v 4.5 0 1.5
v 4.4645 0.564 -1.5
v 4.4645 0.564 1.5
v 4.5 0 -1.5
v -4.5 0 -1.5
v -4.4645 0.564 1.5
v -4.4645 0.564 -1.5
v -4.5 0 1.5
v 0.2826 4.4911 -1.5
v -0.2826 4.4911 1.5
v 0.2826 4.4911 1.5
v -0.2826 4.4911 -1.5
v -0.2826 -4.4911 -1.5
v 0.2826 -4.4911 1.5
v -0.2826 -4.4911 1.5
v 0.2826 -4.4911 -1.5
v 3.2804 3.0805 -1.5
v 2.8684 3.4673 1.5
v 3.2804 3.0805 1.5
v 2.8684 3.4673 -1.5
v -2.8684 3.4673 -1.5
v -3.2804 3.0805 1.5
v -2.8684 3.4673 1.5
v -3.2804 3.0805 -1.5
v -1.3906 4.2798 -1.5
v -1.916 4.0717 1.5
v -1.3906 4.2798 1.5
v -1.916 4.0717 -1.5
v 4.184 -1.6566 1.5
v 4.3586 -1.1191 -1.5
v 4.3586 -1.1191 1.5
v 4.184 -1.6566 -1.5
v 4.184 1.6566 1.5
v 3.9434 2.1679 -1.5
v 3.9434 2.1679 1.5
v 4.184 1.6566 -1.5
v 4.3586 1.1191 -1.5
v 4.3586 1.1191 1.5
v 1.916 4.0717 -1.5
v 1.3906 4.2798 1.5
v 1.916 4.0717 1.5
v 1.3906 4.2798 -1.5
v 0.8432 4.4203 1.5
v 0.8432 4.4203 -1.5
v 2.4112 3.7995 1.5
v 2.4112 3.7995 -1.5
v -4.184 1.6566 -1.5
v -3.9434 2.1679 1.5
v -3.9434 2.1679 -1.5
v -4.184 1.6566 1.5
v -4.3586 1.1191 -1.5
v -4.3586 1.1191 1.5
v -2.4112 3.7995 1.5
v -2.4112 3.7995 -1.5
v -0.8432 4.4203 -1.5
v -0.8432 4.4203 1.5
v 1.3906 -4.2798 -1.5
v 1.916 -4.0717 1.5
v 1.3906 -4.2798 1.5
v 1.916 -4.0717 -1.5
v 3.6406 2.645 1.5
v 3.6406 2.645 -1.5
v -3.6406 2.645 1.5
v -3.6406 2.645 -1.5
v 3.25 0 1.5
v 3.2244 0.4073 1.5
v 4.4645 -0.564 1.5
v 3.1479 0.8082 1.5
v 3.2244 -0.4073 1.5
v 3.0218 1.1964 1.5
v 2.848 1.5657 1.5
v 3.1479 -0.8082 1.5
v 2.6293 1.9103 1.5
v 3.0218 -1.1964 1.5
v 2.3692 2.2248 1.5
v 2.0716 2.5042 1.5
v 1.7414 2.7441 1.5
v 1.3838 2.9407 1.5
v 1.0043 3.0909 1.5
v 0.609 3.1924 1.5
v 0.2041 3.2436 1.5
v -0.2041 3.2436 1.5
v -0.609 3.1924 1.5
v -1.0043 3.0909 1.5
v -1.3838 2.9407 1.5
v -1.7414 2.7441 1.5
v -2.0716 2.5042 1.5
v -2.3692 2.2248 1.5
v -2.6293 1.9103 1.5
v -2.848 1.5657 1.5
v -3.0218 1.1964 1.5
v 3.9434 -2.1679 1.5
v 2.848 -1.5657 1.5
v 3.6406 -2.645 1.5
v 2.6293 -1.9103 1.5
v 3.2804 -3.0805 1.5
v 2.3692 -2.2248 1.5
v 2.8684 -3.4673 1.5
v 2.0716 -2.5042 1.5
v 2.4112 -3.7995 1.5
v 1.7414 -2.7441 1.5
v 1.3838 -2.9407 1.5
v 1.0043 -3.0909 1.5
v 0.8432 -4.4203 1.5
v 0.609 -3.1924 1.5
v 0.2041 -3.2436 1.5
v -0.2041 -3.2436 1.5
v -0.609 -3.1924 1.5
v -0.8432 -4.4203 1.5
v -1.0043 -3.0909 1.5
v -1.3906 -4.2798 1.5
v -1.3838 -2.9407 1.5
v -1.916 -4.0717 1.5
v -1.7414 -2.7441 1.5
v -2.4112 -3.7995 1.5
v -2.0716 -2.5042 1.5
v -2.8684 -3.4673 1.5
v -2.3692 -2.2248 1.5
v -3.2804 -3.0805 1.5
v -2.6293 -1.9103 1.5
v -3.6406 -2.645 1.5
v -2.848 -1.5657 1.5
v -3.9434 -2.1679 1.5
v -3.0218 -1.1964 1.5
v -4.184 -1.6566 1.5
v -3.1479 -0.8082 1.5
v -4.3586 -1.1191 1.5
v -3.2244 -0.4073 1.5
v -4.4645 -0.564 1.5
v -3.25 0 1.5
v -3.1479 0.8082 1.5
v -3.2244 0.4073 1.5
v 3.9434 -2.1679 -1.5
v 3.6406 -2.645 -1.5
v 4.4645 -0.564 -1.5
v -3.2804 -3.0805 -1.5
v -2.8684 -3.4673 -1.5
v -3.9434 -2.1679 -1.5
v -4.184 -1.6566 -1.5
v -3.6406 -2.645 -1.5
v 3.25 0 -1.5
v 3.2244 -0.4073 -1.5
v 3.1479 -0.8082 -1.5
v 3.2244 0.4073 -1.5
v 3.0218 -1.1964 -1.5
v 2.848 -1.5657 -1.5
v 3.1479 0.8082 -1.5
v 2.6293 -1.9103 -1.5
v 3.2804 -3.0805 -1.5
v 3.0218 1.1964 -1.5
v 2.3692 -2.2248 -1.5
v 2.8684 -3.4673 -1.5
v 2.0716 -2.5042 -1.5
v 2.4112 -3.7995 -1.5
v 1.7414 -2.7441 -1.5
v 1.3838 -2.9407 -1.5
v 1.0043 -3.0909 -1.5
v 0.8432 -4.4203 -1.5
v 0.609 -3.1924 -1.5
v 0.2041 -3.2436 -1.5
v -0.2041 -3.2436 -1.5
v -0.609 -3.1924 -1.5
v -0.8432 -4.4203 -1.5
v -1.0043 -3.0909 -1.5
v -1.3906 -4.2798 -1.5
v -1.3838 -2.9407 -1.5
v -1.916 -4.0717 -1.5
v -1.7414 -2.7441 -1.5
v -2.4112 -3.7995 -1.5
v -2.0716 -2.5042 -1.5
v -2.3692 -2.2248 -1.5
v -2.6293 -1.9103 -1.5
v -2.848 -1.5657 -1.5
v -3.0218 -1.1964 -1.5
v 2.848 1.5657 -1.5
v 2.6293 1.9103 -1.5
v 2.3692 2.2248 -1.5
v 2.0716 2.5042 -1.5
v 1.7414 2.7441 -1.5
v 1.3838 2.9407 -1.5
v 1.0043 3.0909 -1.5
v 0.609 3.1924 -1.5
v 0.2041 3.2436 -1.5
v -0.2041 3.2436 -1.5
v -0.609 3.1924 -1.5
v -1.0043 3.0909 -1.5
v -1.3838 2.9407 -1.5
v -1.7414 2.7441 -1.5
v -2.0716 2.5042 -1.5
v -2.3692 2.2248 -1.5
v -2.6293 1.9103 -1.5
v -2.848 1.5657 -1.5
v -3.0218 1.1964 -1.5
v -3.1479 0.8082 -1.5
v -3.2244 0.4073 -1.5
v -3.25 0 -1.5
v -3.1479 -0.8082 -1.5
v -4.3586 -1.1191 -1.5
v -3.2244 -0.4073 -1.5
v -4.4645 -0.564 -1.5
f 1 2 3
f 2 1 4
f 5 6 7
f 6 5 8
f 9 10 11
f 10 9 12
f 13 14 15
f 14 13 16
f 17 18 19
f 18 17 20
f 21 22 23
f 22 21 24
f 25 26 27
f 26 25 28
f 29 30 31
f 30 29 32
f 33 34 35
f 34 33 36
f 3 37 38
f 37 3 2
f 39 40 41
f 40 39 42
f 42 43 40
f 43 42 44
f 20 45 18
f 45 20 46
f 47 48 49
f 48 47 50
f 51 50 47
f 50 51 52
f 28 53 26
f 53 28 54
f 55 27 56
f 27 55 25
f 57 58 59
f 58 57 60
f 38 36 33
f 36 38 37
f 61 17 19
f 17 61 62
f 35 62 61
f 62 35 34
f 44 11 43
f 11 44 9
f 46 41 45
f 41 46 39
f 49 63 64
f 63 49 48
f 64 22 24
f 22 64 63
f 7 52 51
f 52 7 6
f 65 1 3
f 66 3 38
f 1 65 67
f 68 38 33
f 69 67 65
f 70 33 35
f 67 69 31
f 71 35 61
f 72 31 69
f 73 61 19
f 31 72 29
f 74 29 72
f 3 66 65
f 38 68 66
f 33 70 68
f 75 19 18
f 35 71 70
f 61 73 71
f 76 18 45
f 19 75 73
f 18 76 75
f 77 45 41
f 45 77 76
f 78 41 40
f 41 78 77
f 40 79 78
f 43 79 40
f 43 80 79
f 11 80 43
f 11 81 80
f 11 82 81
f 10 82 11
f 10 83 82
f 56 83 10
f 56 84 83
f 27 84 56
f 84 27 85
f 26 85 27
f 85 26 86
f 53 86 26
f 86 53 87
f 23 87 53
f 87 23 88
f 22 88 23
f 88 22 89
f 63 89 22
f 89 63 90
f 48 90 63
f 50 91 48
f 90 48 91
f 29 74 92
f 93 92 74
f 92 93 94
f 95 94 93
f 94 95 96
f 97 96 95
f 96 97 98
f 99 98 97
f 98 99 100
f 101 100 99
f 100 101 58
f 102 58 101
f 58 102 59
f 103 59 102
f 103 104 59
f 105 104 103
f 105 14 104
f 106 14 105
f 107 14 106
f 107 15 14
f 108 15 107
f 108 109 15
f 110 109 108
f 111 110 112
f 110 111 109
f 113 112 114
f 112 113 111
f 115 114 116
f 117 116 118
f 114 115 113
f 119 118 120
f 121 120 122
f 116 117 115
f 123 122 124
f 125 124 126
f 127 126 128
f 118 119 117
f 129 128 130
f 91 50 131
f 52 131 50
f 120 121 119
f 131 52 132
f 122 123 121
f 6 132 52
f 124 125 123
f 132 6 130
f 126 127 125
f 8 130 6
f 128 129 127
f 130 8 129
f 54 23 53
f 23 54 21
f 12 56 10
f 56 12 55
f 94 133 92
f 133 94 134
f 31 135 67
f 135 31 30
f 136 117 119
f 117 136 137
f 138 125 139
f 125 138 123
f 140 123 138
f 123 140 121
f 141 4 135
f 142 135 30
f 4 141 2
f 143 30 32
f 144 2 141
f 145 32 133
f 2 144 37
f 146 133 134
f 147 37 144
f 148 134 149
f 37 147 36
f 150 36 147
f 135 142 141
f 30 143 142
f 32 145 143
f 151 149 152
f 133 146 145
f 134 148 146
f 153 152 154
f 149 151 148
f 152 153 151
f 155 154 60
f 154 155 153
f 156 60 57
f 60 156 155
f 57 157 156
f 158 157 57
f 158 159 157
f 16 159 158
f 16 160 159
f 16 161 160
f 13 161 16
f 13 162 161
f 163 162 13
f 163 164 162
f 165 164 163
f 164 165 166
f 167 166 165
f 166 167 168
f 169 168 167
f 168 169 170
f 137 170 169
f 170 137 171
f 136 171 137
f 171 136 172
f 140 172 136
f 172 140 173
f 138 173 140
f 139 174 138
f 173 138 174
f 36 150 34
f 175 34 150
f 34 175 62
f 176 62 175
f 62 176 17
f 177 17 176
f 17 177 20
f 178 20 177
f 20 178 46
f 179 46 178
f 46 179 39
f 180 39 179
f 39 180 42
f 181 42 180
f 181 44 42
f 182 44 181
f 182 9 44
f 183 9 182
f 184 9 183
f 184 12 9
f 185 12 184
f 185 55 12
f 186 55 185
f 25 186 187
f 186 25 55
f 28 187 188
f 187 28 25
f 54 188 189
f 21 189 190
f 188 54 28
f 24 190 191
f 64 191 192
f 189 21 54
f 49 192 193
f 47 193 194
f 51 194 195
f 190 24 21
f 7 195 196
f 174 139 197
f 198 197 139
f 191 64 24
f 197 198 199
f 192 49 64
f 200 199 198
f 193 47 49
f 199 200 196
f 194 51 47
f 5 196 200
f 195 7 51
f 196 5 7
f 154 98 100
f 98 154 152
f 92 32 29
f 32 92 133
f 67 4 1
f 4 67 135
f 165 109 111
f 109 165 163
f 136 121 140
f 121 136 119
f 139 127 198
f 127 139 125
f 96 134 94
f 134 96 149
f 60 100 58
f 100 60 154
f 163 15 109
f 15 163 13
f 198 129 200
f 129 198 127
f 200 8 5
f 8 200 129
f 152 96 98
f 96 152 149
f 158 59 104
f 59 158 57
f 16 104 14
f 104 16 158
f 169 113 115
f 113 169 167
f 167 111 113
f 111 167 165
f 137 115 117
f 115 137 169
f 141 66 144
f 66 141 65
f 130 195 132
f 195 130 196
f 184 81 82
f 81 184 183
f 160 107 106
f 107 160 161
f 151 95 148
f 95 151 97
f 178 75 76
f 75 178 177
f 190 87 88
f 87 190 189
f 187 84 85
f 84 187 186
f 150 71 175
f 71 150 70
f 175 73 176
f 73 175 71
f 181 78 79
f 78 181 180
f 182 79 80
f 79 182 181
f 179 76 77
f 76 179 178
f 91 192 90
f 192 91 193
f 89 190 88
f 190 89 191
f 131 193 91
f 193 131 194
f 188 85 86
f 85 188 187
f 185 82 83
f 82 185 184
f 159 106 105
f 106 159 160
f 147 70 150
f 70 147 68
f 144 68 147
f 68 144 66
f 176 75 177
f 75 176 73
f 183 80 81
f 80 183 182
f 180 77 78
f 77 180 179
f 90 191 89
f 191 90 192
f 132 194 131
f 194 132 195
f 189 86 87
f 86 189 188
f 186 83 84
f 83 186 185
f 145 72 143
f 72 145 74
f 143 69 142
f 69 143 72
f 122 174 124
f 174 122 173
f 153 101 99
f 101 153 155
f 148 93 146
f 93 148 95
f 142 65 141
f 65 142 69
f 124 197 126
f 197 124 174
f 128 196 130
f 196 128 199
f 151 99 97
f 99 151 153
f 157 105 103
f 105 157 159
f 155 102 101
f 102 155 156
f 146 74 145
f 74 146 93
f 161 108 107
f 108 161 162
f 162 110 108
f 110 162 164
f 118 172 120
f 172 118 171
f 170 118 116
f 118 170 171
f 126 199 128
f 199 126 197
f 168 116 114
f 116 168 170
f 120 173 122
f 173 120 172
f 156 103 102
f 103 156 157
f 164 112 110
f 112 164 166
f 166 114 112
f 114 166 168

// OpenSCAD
$fn = 50;


difference() {
	union() {
		translate(v = [0, 0, -1.5000000000]) {
			cylinder(h = 3, r = 4.5000000000);
		}
	}
	union() {
		translate(v = [0, 0, -100.0000000000]) {
			cylinder(h = 200, r = 3.2500000000);
		}
	}
}
